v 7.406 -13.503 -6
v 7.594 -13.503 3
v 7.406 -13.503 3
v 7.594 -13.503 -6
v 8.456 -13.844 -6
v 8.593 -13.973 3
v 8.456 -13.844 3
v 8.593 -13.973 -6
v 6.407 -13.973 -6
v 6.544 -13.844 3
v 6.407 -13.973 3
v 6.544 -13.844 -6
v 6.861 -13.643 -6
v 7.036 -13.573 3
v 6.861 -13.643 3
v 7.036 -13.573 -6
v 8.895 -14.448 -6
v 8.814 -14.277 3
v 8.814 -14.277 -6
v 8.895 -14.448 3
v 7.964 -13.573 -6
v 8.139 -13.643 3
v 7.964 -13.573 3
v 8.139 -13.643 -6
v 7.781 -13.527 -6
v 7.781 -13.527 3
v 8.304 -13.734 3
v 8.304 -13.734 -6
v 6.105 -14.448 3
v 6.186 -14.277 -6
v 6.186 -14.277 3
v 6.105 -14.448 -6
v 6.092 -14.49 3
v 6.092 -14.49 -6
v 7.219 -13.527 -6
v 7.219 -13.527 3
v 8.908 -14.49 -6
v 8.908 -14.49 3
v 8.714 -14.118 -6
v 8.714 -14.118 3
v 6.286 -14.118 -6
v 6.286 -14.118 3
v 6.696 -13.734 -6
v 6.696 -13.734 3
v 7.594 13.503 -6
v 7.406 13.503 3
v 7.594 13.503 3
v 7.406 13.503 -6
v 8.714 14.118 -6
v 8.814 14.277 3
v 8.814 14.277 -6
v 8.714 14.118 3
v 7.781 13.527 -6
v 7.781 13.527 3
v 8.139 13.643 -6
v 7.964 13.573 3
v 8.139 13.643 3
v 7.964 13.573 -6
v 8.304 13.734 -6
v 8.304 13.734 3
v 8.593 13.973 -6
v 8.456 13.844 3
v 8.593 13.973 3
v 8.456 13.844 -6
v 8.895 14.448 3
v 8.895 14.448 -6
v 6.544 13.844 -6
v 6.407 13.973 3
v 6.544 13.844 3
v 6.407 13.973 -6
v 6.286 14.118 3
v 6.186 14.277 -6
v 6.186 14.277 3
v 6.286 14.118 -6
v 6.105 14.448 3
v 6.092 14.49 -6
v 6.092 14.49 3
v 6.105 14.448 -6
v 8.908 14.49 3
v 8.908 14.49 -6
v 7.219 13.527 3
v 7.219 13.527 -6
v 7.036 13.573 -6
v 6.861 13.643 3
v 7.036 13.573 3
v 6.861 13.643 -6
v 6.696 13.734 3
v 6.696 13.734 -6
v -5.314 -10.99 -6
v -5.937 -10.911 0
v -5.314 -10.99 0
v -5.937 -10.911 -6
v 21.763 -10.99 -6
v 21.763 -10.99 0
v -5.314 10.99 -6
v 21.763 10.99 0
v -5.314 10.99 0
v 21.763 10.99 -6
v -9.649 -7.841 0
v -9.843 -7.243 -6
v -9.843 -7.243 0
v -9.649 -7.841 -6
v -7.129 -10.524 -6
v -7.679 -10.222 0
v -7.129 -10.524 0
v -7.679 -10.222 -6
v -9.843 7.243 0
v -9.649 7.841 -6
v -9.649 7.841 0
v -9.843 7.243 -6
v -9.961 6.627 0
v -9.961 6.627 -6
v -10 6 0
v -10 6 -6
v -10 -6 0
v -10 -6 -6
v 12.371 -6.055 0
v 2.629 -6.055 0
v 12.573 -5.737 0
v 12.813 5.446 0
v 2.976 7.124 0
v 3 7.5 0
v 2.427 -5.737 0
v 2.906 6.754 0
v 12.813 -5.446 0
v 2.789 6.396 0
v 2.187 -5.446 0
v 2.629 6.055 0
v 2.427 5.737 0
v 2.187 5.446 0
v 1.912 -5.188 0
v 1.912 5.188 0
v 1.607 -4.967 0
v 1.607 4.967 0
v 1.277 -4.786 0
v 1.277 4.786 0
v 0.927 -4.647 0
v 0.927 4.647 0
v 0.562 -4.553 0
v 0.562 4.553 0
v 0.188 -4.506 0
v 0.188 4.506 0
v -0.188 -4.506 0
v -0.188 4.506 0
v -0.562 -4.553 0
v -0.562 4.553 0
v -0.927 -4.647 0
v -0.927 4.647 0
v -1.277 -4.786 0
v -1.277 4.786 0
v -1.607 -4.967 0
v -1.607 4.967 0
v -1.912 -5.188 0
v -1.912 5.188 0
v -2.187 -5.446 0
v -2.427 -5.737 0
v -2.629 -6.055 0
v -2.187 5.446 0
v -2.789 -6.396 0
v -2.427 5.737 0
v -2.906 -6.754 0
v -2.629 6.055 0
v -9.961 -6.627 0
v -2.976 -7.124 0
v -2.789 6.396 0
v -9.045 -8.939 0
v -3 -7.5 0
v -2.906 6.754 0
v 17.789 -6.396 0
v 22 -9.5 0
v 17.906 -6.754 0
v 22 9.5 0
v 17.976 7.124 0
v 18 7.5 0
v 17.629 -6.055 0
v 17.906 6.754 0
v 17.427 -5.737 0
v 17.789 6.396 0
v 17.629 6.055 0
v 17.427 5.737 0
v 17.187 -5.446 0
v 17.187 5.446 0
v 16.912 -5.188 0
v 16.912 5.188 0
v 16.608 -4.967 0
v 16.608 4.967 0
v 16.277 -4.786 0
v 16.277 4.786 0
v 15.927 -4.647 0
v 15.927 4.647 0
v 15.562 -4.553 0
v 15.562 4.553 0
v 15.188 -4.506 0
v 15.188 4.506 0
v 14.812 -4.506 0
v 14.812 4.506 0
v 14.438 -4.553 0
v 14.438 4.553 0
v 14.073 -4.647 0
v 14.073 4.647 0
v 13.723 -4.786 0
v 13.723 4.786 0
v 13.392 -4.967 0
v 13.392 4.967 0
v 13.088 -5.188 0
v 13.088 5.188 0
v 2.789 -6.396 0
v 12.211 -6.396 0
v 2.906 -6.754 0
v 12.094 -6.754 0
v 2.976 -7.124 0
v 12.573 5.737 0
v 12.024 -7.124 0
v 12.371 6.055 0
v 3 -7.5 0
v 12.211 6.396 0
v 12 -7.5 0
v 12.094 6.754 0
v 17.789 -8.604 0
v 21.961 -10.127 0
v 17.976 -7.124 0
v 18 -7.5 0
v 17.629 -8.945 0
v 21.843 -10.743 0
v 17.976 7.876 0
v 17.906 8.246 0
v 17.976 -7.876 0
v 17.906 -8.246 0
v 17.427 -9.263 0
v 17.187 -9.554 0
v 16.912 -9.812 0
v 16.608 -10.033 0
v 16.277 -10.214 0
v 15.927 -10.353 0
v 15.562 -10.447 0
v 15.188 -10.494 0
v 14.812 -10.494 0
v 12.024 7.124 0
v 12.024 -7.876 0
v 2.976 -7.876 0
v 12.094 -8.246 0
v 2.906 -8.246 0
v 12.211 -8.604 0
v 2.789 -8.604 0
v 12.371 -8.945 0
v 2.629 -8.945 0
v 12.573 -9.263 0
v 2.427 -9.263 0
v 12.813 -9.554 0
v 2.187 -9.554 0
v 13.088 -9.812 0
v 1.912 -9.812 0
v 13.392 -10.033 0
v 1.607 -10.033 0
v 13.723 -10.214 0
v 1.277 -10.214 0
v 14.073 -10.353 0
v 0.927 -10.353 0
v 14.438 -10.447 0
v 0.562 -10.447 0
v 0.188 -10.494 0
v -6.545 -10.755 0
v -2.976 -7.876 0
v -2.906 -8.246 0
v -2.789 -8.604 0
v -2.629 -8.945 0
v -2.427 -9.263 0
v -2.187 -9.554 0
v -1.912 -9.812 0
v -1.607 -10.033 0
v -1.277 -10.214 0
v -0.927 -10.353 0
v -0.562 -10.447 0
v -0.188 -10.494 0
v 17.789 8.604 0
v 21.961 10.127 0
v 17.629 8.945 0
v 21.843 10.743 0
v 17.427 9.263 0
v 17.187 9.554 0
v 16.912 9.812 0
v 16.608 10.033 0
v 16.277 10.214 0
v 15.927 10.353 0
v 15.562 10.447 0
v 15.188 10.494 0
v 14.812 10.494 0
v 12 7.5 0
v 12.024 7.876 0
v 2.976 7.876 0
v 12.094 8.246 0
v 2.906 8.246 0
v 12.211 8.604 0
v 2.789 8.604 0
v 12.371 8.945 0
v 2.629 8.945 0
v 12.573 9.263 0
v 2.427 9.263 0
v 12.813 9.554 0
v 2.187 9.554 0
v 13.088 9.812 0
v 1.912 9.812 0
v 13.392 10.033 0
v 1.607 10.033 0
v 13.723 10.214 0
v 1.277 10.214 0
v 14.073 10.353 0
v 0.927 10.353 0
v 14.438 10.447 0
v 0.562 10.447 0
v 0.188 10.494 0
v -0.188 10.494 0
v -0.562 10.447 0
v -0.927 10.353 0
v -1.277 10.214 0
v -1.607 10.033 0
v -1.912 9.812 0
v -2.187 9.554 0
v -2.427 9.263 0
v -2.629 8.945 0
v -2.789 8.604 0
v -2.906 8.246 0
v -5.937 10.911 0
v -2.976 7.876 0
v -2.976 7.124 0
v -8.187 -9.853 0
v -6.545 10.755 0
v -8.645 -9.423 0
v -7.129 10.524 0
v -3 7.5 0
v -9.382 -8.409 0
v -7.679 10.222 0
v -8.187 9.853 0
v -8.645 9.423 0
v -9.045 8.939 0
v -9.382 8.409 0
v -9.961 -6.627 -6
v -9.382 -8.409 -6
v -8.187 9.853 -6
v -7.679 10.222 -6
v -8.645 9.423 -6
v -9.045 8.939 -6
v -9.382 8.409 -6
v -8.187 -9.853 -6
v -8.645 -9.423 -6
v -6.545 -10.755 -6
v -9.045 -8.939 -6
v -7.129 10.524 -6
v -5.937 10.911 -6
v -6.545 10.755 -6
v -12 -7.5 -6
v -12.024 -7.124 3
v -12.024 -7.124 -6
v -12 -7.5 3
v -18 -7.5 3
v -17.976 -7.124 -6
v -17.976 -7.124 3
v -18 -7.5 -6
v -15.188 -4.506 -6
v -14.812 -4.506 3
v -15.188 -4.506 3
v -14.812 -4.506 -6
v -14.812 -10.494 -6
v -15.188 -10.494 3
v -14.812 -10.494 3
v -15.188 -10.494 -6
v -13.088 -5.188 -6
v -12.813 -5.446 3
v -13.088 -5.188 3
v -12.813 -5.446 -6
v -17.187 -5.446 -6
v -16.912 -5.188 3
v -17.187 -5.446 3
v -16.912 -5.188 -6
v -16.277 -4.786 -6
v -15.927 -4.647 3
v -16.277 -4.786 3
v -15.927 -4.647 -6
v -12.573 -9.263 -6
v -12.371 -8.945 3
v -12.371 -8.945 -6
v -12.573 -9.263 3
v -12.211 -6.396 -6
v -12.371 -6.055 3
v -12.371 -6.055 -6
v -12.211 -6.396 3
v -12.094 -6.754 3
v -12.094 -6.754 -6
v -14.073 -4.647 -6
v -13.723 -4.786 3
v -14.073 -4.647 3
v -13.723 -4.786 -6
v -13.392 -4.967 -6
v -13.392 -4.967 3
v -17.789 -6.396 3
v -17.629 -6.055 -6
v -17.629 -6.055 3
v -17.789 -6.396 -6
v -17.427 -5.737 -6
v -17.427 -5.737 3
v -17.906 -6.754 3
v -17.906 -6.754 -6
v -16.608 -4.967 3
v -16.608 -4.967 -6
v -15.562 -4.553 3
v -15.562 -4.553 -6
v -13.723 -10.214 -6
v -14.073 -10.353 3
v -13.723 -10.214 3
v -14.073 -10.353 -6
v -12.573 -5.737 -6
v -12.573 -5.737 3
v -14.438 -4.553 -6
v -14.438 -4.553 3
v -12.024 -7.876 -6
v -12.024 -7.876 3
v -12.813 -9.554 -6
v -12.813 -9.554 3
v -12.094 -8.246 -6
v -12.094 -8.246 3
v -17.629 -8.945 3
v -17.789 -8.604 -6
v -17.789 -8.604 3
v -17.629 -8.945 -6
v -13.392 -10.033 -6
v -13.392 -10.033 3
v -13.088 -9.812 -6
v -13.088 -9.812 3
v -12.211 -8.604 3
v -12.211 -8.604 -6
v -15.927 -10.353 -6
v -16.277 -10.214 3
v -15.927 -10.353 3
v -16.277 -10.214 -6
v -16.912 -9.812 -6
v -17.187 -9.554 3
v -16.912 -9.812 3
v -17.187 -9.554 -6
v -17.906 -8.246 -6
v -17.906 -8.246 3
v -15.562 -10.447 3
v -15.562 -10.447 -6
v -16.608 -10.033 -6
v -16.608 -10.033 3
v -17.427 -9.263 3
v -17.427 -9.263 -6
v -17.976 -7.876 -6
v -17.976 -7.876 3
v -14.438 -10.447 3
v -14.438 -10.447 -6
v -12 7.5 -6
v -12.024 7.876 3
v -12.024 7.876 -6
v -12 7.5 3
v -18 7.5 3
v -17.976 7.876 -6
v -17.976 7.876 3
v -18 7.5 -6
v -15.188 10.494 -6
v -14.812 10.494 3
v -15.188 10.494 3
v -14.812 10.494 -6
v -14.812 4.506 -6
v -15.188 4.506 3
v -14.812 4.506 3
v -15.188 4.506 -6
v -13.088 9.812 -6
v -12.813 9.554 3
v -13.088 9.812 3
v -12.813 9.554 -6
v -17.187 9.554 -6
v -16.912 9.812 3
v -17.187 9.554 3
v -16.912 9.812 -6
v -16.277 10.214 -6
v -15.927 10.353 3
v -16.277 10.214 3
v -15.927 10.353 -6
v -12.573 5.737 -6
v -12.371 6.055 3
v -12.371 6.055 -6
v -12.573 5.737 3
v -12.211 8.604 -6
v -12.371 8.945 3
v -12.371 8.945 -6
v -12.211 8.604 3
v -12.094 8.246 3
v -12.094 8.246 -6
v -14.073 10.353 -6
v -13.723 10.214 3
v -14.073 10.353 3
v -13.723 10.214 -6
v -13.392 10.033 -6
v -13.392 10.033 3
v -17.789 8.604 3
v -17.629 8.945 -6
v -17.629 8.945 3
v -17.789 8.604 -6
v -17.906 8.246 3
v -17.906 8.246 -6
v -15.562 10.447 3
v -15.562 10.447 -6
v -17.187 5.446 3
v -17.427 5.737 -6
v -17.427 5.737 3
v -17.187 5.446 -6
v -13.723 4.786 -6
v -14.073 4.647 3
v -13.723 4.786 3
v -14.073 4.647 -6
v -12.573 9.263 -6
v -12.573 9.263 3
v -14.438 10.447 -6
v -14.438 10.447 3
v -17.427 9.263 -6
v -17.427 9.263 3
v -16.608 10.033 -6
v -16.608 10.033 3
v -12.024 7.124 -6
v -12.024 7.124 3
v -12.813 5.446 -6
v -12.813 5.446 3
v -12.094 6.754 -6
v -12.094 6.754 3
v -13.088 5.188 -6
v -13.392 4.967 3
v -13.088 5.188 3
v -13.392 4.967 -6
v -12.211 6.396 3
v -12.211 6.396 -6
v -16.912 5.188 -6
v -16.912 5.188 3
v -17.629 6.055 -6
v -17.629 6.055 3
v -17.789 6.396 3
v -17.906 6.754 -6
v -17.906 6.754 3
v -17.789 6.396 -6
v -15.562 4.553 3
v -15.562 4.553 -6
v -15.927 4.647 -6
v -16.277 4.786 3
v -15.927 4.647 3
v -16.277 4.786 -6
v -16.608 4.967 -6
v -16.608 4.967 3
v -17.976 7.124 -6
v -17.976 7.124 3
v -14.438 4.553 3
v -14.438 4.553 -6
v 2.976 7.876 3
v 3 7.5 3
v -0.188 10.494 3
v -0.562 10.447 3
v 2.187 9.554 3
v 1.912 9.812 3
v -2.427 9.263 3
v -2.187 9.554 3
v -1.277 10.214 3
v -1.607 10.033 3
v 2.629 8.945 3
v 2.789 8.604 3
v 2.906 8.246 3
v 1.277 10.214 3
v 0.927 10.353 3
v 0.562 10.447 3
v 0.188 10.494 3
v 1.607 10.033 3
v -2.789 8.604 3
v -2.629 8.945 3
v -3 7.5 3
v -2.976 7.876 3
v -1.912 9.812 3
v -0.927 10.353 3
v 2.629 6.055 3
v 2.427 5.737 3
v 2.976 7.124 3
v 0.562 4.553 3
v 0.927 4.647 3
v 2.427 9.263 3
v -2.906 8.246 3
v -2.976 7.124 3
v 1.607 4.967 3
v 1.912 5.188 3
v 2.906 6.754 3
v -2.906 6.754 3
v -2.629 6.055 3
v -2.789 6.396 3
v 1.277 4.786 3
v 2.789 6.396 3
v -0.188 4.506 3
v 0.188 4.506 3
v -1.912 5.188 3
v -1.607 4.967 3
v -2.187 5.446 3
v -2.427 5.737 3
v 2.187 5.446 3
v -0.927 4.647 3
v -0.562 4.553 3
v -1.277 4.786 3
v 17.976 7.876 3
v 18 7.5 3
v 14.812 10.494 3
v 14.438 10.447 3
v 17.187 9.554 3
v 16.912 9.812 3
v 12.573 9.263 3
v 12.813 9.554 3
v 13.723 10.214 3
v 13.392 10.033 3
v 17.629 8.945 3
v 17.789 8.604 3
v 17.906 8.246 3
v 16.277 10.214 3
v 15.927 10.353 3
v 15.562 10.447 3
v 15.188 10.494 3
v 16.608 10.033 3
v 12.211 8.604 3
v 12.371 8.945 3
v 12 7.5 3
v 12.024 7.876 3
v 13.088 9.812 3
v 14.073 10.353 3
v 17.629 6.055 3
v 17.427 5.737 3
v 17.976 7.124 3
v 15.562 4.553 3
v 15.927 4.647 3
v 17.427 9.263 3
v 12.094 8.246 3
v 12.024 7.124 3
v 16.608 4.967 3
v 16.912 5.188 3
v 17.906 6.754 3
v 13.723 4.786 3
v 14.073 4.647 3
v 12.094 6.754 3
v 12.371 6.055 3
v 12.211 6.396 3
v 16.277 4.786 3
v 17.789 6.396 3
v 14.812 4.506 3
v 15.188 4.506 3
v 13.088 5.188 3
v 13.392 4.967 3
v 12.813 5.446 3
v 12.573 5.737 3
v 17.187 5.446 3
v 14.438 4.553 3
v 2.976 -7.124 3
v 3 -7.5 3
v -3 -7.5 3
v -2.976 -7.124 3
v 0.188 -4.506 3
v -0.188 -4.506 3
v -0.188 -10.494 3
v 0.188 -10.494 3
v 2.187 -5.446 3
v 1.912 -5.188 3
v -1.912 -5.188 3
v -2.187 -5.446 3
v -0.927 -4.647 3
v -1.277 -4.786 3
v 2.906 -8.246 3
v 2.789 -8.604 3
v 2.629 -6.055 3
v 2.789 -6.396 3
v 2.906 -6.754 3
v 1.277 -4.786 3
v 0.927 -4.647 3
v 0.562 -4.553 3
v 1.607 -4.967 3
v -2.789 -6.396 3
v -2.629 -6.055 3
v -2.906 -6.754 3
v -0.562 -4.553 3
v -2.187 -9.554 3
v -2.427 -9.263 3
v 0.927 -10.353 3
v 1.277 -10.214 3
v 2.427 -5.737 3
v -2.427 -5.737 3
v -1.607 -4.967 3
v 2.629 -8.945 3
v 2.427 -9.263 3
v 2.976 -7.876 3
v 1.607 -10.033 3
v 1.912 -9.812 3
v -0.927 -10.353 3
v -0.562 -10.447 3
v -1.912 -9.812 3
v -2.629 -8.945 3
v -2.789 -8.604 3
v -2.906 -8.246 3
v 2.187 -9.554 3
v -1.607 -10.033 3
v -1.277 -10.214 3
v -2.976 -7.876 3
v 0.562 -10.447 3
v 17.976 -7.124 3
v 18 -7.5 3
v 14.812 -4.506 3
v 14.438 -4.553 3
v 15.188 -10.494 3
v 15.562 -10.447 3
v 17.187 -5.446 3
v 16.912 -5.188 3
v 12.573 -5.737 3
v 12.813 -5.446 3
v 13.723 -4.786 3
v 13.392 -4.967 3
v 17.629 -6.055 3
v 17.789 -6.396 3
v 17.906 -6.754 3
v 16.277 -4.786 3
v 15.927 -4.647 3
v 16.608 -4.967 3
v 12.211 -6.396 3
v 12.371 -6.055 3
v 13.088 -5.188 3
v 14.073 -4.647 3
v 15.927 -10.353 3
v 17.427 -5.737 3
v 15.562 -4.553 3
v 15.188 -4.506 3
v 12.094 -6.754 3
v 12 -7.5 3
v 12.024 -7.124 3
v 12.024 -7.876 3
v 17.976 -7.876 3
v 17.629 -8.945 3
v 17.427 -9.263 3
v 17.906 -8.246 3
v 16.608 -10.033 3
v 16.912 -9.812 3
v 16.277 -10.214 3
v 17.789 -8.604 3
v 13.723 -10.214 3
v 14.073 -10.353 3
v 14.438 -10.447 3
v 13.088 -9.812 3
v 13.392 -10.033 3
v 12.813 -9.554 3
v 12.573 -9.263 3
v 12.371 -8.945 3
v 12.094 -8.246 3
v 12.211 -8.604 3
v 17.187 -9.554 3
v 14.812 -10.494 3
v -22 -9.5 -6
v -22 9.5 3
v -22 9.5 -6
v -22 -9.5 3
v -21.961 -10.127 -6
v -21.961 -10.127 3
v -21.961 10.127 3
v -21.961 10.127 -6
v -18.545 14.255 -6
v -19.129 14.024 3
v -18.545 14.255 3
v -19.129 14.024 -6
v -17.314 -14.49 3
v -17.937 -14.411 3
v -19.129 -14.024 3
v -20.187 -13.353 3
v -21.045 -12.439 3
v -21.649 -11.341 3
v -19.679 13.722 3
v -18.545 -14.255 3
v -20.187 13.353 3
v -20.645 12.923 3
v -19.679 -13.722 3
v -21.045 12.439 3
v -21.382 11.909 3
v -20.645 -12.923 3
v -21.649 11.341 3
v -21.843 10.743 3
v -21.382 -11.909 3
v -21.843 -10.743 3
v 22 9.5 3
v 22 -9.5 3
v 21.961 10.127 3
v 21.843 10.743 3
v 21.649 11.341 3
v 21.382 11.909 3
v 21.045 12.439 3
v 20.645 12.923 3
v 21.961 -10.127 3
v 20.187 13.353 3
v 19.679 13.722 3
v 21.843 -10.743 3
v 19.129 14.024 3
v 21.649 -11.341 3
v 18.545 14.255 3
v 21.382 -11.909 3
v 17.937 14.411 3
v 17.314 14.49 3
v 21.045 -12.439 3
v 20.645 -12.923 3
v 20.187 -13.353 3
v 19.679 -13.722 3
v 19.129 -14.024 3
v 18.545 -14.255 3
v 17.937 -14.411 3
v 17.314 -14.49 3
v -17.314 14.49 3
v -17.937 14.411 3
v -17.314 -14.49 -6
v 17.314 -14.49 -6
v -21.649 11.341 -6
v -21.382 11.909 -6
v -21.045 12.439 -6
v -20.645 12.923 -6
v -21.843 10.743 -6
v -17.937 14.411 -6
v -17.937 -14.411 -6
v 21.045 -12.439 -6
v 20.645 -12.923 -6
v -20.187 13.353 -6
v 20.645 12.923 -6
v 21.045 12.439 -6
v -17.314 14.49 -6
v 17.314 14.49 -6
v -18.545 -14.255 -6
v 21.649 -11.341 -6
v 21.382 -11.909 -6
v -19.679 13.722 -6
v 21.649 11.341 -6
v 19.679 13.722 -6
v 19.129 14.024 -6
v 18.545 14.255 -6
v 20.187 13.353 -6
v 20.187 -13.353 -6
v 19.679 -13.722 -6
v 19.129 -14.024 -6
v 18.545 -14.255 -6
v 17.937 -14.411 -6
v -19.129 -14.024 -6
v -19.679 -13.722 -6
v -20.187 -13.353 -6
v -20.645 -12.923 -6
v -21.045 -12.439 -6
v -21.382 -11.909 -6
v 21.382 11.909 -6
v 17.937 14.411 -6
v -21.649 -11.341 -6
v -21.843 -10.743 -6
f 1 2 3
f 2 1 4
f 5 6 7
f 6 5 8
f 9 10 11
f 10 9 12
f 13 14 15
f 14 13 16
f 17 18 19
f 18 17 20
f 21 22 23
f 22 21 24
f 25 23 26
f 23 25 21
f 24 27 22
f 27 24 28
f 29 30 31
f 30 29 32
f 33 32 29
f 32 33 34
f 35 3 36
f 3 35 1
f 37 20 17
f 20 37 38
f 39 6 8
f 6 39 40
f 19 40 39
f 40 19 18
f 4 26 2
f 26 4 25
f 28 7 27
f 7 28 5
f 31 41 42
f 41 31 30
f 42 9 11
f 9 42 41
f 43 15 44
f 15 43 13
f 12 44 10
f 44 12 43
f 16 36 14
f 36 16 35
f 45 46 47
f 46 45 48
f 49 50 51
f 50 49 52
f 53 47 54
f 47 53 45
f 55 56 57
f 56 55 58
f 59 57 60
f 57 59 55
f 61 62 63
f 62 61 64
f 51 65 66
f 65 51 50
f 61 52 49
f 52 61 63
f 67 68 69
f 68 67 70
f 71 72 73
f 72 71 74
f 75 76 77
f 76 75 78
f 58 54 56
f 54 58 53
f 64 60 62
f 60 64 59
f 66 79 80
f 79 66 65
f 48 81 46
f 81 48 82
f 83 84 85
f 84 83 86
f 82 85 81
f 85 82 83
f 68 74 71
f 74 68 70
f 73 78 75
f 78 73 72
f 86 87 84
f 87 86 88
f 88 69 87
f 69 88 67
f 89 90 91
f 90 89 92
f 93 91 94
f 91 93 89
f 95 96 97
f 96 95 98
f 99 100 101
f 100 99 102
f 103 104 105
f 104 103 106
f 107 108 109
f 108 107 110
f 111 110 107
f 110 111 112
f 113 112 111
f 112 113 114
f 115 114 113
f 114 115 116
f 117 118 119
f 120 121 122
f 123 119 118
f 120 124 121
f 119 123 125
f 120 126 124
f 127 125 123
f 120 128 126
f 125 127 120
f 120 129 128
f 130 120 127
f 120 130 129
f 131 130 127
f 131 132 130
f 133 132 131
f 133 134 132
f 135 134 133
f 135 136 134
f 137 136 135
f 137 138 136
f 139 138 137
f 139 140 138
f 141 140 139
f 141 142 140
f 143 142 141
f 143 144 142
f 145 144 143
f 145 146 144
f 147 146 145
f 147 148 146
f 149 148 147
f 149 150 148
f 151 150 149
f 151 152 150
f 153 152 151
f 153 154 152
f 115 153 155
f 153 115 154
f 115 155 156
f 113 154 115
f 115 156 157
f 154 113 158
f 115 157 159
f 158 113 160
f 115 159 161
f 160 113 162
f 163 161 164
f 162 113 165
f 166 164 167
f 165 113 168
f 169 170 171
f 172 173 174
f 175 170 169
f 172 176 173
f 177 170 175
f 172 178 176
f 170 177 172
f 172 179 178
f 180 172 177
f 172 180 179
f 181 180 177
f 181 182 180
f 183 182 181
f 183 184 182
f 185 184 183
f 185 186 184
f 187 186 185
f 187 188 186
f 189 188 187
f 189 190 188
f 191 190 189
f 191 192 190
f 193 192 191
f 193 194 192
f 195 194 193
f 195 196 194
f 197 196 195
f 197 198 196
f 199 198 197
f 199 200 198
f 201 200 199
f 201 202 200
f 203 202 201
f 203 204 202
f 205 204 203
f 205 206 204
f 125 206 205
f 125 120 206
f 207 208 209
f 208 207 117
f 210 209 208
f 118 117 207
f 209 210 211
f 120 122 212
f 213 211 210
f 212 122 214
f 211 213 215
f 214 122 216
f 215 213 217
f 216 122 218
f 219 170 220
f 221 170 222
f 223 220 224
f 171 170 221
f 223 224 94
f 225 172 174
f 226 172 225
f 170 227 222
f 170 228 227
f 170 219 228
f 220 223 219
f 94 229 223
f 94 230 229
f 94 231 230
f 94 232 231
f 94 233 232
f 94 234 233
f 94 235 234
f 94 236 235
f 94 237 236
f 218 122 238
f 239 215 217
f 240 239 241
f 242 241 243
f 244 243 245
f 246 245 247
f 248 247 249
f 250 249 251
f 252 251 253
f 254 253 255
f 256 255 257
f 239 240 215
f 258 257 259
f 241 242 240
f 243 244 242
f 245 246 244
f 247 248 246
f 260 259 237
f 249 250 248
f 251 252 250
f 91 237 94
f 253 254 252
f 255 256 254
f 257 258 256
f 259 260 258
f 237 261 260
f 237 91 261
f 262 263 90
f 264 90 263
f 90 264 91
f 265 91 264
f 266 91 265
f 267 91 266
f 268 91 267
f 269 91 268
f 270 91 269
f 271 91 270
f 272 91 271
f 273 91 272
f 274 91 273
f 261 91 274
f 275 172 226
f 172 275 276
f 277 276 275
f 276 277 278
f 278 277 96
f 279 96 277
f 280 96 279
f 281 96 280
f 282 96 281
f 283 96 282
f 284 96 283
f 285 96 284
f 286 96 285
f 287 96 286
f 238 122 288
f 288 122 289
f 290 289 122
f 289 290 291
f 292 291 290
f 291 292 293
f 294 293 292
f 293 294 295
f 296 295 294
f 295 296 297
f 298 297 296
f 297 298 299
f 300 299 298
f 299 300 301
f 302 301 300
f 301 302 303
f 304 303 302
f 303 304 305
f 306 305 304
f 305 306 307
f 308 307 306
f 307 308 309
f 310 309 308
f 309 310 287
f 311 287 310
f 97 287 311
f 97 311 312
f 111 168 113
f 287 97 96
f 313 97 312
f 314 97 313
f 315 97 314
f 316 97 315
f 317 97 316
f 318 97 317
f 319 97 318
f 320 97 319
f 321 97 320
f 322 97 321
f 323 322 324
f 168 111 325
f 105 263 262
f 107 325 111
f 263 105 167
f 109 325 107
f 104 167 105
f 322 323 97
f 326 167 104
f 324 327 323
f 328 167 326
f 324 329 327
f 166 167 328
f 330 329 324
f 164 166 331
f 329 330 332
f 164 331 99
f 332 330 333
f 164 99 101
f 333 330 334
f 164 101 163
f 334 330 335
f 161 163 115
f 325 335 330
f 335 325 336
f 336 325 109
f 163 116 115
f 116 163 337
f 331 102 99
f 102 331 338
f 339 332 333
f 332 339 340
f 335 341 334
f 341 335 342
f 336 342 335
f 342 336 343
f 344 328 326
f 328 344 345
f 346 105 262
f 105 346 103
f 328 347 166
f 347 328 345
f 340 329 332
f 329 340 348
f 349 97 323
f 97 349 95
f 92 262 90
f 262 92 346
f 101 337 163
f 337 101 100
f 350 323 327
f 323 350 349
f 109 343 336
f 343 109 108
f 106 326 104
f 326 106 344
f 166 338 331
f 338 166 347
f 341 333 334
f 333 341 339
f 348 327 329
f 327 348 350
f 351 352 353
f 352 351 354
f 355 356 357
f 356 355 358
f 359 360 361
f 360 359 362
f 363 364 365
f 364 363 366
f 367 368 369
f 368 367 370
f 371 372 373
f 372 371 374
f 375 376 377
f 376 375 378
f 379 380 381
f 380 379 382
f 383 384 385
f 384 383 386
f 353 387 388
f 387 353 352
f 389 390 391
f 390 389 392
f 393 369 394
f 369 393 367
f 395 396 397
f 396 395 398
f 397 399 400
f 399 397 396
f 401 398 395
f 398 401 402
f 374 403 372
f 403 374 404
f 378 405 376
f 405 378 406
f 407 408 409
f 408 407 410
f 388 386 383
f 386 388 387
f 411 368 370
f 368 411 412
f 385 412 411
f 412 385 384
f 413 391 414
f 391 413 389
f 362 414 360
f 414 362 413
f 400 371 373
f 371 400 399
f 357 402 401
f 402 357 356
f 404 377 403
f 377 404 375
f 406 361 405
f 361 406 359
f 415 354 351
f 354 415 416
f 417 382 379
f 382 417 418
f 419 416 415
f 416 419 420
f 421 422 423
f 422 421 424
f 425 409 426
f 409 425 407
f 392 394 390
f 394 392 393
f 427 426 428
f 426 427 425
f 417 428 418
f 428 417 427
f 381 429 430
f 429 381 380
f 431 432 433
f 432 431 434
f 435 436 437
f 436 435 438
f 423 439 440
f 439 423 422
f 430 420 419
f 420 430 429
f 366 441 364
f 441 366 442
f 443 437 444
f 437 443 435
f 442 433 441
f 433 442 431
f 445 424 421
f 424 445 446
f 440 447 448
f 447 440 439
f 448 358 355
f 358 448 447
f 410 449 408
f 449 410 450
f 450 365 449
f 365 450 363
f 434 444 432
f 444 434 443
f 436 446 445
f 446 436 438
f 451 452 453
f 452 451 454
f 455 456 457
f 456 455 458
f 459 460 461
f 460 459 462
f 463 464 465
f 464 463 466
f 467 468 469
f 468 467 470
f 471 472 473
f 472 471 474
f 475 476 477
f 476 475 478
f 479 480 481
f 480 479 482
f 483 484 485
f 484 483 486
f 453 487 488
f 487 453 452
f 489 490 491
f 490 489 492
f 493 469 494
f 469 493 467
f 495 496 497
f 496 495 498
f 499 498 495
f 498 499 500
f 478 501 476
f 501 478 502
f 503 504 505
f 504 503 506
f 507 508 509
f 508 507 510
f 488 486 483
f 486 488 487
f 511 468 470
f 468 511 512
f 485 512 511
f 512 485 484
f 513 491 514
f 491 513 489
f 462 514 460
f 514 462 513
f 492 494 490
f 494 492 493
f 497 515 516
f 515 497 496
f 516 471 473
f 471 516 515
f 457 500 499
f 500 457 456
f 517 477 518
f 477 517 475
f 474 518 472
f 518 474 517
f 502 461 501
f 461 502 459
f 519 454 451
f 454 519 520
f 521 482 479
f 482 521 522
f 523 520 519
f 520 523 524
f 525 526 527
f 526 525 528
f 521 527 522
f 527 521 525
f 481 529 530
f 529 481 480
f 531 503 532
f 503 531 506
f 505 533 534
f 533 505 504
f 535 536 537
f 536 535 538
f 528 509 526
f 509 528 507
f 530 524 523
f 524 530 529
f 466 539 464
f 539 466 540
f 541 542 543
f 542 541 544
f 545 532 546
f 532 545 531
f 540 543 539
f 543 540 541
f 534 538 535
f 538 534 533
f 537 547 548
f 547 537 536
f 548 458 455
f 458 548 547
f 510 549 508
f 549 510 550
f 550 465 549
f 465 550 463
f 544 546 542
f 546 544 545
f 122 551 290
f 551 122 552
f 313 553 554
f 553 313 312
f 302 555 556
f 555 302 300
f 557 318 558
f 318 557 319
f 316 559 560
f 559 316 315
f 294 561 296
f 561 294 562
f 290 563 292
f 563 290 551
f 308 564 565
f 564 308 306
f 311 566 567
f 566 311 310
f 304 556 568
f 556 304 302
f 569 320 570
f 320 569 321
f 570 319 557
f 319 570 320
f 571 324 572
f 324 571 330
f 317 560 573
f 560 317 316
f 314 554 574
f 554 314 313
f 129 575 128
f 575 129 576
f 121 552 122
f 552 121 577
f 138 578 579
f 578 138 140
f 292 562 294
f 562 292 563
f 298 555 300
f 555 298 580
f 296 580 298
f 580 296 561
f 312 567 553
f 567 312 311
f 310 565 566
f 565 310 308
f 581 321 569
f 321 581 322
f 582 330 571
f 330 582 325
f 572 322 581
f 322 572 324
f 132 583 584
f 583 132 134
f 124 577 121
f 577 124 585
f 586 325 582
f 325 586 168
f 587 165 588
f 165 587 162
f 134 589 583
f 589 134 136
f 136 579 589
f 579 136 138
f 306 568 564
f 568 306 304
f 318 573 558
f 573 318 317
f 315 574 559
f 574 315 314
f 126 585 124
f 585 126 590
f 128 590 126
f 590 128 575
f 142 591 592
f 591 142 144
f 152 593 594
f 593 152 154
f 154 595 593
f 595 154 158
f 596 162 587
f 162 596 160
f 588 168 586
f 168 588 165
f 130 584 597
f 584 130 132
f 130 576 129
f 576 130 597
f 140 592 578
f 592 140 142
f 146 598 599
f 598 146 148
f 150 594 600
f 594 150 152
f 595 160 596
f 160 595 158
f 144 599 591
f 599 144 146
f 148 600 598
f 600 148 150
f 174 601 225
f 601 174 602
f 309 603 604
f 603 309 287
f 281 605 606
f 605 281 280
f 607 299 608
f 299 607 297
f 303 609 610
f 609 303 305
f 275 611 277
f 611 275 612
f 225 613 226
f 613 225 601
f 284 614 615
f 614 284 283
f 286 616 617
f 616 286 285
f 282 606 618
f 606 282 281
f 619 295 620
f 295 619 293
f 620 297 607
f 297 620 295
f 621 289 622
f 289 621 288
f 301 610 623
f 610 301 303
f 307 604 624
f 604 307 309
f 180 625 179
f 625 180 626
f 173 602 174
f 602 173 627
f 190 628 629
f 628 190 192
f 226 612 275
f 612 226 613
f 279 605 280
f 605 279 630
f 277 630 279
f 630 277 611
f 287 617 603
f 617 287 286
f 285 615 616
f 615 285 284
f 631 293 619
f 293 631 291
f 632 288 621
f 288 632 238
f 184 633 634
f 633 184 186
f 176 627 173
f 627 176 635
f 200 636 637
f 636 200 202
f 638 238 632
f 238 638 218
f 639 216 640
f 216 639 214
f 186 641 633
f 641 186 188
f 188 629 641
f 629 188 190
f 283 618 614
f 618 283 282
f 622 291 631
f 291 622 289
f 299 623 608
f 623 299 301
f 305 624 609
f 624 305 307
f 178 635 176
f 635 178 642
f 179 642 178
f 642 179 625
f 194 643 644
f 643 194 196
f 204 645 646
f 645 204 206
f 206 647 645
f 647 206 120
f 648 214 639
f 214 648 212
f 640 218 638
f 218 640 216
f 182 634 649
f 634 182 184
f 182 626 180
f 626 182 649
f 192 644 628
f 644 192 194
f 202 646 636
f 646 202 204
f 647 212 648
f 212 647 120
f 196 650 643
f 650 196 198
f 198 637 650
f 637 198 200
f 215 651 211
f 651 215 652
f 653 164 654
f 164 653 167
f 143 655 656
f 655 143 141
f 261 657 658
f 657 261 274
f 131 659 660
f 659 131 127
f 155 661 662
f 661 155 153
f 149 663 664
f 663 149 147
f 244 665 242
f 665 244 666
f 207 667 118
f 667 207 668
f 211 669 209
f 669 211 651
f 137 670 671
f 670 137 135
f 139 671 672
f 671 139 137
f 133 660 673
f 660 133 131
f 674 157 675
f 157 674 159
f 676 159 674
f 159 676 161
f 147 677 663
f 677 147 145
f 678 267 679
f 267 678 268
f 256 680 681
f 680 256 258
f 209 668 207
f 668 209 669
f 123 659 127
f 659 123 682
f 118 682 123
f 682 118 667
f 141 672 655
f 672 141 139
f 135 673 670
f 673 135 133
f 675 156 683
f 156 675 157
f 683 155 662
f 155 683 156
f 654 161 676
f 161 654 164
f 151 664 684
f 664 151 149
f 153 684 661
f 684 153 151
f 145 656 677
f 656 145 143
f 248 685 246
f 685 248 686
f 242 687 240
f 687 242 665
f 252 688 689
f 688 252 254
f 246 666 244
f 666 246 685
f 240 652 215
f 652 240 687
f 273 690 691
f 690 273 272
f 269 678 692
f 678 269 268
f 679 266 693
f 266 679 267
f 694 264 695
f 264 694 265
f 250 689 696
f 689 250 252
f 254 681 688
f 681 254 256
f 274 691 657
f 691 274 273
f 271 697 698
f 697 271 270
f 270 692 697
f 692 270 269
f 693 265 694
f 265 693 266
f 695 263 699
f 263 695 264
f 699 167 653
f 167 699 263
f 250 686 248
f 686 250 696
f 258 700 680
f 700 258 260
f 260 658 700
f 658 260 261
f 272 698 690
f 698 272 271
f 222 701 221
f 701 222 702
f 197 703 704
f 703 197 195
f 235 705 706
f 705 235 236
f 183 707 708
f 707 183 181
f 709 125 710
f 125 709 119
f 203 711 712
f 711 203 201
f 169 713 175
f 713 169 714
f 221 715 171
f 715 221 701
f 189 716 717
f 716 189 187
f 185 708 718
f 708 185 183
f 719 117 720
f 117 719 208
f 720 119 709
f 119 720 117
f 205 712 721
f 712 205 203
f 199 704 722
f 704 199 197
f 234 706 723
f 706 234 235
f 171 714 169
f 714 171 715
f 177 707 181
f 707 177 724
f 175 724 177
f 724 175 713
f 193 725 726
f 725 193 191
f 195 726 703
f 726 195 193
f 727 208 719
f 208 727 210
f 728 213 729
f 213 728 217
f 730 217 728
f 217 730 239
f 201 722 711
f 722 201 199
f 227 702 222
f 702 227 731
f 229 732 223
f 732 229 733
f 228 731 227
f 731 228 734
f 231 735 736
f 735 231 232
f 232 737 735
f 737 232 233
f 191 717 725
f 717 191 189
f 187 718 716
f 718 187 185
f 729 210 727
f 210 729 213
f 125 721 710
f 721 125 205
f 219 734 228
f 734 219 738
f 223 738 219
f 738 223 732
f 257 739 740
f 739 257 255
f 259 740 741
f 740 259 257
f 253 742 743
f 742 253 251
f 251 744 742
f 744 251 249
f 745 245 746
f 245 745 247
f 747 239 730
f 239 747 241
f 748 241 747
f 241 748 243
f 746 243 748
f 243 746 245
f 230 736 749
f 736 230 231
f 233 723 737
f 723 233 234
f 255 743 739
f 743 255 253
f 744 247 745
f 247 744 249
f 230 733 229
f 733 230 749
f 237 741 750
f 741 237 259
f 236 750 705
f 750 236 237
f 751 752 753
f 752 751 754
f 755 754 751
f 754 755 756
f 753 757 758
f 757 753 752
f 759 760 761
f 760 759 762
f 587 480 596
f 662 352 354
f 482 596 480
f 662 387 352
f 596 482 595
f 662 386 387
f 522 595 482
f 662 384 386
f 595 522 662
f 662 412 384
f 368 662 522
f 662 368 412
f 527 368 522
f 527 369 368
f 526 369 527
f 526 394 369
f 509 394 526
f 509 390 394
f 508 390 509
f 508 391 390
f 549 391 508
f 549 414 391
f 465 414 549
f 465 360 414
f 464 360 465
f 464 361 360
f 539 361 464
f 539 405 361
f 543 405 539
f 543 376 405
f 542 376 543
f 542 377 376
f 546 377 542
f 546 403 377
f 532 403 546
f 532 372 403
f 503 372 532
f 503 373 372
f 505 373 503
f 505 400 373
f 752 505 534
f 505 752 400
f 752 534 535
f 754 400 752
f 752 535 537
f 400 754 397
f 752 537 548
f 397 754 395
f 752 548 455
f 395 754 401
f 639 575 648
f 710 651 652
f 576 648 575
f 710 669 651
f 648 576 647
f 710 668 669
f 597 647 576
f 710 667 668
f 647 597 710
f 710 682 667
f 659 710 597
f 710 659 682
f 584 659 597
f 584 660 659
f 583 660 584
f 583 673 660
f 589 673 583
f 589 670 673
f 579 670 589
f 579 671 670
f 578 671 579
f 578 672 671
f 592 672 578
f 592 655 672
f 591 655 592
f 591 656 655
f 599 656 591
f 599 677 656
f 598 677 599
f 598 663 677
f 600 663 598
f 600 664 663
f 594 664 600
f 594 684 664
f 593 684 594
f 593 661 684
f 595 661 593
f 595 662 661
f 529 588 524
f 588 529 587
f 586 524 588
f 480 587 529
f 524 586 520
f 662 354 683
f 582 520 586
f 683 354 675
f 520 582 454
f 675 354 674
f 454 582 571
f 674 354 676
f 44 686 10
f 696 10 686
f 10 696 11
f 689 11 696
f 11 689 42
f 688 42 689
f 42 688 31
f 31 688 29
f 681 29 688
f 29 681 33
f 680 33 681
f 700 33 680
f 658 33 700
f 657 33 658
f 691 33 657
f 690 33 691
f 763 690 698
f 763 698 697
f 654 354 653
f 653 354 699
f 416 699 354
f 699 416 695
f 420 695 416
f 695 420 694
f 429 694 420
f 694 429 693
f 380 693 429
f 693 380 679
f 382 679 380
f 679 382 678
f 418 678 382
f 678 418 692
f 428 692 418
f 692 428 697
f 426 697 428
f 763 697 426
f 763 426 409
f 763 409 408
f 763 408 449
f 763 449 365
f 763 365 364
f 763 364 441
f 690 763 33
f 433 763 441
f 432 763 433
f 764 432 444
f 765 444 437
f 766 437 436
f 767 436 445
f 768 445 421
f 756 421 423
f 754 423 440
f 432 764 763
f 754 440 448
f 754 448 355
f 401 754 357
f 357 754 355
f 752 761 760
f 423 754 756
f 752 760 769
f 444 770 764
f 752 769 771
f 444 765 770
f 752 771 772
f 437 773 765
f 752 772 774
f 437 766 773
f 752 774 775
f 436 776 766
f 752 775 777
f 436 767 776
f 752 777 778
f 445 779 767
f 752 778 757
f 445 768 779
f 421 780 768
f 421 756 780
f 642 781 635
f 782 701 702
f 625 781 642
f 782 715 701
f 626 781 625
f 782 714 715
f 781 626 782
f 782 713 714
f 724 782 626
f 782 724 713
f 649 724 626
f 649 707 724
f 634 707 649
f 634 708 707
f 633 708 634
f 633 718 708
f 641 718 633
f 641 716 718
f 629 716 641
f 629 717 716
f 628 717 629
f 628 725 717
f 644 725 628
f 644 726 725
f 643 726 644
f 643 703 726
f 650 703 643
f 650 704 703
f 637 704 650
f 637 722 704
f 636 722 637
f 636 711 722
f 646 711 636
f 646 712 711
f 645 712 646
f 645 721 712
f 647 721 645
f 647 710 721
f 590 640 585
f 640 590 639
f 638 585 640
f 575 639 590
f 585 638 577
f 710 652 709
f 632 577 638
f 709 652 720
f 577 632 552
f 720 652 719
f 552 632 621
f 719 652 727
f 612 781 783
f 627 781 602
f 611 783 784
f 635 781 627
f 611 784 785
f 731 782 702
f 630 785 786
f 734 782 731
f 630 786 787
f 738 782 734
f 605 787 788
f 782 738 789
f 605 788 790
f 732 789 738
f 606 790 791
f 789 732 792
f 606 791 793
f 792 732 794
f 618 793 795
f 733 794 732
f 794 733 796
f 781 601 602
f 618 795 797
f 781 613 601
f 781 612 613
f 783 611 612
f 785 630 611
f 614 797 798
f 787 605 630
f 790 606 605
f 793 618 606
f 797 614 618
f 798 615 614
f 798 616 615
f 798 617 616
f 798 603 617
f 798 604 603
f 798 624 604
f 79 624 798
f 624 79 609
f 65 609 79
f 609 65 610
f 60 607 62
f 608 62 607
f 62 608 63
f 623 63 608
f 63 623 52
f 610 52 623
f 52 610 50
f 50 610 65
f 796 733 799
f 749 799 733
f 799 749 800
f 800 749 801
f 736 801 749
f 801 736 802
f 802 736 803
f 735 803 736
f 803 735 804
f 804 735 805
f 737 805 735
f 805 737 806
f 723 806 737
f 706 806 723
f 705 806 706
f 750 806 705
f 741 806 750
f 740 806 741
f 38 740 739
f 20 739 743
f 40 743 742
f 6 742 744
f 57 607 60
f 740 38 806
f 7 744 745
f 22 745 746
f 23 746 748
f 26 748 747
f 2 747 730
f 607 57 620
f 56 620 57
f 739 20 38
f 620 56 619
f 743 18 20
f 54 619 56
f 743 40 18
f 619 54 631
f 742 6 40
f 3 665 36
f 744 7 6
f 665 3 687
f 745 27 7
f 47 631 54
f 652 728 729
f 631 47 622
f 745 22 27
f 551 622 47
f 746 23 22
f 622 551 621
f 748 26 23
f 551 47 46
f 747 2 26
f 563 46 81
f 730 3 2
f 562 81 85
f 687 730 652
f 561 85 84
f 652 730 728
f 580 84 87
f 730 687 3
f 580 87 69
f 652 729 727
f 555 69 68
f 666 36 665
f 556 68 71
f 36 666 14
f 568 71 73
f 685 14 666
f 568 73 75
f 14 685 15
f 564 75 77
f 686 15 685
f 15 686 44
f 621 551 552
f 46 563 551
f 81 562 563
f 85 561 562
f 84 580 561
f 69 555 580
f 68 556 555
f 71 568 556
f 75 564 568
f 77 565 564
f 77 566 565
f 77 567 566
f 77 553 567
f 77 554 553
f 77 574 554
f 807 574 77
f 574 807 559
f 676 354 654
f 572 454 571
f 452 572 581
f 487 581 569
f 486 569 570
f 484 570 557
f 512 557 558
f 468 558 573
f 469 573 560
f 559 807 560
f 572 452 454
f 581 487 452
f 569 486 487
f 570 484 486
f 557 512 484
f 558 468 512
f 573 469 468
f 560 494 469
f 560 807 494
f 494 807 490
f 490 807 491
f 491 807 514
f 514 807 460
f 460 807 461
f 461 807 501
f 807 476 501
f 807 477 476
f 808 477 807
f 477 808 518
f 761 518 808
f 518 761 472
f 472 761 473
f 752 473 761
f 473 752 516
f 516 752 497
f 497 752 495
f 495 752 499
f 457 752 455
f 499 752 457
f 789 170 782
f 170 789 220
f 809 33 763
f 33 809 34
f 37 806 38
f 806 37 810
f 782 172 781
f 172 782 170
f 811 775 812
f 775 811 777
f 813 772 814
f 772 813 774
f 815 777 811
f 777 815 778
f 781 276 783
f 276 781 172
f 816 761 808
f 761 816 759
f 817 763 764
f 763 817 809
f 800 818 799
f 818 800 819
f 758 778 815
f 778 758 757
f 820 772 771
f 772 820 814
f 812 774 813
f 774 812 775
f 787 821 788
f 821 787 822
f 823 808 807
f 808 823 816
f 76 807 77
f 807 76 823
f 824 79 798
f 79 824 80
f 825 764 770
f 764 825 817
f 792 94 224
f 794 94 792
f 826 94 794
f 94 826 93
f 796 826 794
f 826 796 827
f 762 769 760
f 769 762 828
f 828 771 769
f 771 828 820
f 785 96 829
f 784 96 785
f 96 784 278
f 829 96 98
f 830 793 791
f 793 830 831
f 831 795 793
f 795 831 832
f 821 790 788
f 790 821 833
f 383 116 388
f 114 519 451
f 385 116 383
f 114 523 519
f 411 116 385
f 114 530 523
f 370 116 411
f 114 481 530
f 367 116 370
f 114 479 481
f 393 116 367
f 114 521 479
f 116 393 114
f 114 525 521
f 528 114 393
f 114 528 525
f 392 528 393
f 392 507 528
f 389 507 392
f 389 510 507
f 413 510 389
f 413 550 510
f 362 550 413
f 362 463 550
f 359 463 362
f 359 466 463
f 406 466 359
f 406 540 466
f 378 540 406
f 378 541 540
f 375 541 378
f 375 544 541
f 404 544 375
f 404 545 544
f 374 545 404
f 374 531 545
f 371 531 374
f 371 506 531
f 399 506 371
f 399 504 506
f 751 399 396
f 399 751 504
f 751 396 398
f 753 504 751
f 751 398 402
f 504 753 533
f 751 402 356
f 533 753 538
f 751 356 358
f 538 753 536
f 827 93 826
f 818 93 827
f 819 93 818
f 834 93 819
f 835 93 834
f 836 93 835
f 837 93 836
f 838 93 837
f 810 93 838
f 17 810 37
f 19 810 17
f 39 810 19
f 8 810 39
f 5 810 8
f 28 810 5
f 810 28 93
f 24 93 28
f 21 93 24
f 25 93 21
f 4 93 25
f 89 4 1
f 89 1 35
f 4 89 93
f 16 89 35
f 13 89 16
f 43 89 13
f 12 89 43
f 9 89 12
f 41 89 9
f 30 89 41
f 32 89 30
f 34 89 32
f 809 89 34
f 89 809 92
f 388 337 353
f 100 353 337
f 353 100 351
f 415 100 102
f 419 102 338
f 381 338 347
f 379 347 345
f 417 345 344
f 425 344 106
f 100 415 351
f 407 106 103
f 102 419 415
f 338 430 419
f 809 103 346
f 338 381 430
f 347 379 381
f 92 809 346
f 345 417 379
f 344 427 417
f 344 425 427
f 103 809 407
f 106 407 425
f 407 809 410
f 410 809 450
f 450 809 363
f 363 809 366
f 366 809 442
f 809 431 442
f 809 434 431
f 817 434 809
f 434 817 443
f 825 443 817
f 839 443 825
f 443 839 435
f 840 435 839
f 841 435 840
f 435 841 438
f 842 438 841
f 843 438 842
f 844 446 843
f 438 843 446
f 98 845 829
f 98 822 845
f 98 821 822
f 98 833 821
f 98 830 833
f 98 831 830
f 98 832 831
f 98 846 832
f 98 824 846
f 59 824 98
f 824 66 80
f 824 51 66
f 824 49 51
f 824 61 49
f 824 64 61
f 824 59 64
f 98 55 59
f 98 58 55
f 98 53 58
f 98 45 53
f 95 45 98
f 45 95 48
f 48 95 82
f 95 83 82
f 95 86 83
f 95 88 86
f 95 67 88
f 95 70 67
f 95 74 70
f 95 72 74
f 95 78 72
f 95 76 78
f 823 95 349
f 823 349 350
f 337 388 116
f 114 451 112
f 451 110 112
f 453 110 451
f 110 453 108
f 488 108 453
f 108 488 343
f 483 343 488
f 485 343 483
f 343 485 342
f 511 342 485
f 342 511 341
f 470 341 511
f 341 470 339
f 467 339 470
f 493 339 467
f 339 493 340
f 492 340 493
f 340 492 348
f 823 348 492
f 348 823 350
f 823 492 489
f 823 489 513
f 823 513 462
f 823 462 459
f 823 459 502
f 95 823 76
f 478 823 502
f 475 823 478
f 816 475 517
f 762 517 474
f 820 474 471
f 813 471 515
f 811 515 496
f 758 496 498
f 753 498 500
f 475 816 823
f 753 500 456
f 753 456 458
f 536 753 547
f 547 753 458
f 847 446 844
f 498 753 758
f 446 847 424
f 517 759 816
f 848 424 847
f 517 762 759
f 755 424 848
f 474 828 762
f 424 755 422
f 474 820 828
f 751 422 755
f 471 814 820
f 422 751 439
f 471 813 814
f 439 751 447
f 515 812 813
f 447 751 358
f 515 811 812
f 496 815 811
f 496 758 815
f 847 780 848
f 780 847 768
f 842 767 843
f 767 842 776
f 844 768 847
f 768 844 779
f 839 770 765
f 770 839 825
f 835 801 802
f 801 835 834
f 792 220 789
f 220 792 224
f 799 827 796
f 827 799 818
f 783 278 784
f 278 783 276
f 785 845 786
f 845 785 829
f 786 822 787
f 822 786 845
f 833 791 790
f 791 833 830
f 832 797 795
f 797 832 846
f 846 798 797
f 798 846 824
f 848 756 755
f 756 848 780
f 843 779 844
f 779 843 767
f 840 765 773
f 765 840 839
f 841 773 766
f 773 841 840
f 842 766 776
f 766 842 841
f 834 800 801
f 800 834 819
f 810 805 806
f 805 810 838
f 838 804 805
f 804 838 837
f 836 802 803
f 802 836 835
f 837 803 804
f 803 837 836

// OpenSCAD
$fn = 50;


difference() {
	union() {
		translate(v = [0, 0, -6]) {
			hull() {
				translate(v = [-17.0000000000, 9.5000000000, 0]) {
					cylinder(h = 9, r = 5);
				}
				translate(v = [17.0000000000, 9.5000000000, 0]) {
					cylinder(h = 9, r = 5);
				}
				translate(v = [-17.0000000000, -9.5000000000, 0]) {
					cylinder(h = 9, r = 5);
				}
				translate(v = [17.0000000000, -9.5000000000, 0]) {
					cylinder(h = 9, r = 5);
				}
			}
		}
	}
	union() {
		translate(v = [7.5000000000, -15, -9]) {
			rotate(a = [0, 0, 0]) {
				difference() {
					union() {
						translate(v = [0, 0, -50.0000000000]) {
							cylinder(h = 100, r = 1.5000000000);
						}
						translate(v = [0, 0, -50.0000000000]) {
							cylinder(h = 100, r = 1.5000000000);
						}
						linear_extrude(height = 2.5000000000) {
							polygon(points = [[3.1735000000, 0.0000000000], [1.5867500000, 2.7483316189], [-1.5867500000, 2.7483316189], [-3.1735000000, 0.0000000000], [-1.5867500000, -2.7483316189], [1.5867500000, -2.7483316189]]);
						}
						translate(v = [0, 0, -50.0000000000]) {
							cylinder(h = 100, r = 1.5000000000);
						}
					}
					union();
				}
			}
		}
		translate(v = [7.5000000000, 15, -9]) {
			rotate(a = [0, 0, 0]) {
				difference() {
					union() {
						translate(v = [0, 0, -50.0000000000]) {
							cylinder(h = 100, r = 1.5000000000);
						}
						translate(v = [0, 0, -50.0000000000]) {
							cylinder(h = 100, r = 1.5000000000);
						}
						linear_extrude(height = 2.5000000000) {
							polygon(points = [[3.1735000000, 0.0000000000], [1.5867500000, 2.7483316189], [-1.5867500000, 2.7483316189], [-3.1735000000, 0.0000000000], [-1.5867500000, -2.7483316189], [1.5867500000, -2.7483316189]]);
						}
						translate(v = [0, 0, -50.0000000000]) {
							cylinder(h = 100, r = 1.5000000000);
						}
					}
					union();
				}
			}
		}
		translate(v = [0, 0, -3]) {
			rotate(a = [0, 0, 180]) {
				difference() {
					union() {
						translate(v = [-10, 0, -6]) {
							#hull() {
								translate(v = [-15.0000000000, 6.0000000000, 0]) {
									cylinder(h = 9, r = 5);
								}
								translate(v = [15.0000000000, 6.0000000000, 0]) {
									cylinder(h = 9, r = 5);
								}
								translate(v = [-15.0000000000, -6.0000000000, 0]) {
									cylinder(h = 9, r = 5);
								}
								translate(v = [15.0000000000, -6.0000000000, 0]) {
									cylinder(h = 9, r = 5);
								}
							}
						}
					}
					union();
				}
			}
		}
		translate(v = [-15.0000000000, -7.5000000000, -50.0000000000]) {
			cylinder(h = 100, r = 3.0000000000);
		}
		translate(v = [-15.0000000000, 7.5000000000, -50.0000000000]) {
			cylinder(h = 100, r = 3.0000000000);
		}
		translate(v = [-15.0000000000, 7.5000000000, -50.0000000000]) {
			cylinder(h = 100, r = 3.0000000000);
		}
		translate(v = [0.0000000000, 7.5000000000, -50.0000000000]) {
			cylinder(h = 100, r = 3.0000000000);
		}
		translate(v = [15.0000000000, 7.5000000000, -50.0000000000]) {
			cylinder(h = 100, r = 3.0000000000);
		}
		translate(v = [-15.0000000000, -7.5000000000, -50.0000000000]) {
			cylinder(h = 100, r = 3.0000000000);
		}
		translate(v = [0.0000000000, -7.5000000000, -50.0000000000]) {
			cylinder(h = 100, r = 3.0000000000);
		}
		translate(v = [15.0000000000, -7.5000000000, -50.0000000000]) {
			cylinder(h = 100, r = 3.0000000000);
		}
	}
}
